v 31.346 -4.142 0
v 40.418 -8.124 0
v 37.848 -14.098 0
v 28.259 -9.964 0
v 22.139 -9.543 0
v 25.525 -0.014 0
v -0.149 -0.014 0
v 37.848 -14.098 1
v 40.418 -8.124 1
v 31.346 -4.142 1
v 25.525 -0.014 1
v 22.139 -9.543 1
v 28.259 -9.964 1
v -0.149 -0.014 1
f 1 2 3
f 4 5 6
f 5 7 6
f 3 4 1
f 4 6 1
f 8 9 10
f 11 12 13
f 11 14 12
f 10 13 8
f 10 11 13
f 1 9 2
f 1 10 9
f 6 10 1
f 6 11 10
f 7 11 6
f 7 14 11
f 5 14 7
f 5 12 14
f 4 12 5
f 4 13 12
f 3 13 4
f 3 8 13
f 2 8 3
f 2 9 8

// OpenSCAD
// file: BOSL2/std.scad
// Minimal BOSL2 compatibility shim for bundled gallery models.
// It implements only the helpers used by the imported OpenSCAD projects.

CENTER = [0, 0, 0];
BOTTOM = [0, 0, -1];
TOP = [0, 0, 1];
LEFT = [-1, 0, 0];
RIGHT = [1, 0, 0];
FRONT = [0, -1, 0];
BACK = [0, 1, 0];

module up(z=0) {
    translate([0, 0, z]) children();
}

module down(z=0) {
    translate([0, 0, -z]) children();
}

module attach(anchor=CENTER) {
    children();
}

module cuboid(size=[1, 1, 1], anchor=CENTER) {
    center = anchor == CENTER;
    translate(center ? [0, 0, 0] : [0, 0, size[2] / 2])
        cube(size, center=true);
    children();
}

module xcyl(h=1, r=1, anchor=CENTER) {
    center = anchor == CENTER;
    translate(center ? [0, 0, 0] : [h / 2, 0, 0])
        rotate([0, 90, 0])
            cylinder(h=h, r=r, center=true);
}
// main file
include <BOSL2/std.scad>
flat_side_length = 24.24;
p2 = [142,128];
p3 = [993,592];
image_length = sqrt(pow(p3.x-p2.x, 2) + pow(p3.y-p2.y,2));
scale_factor=flat_side_length / image_length;
p1 =   [1084+2.00/scale_factor,128+2.44/scale_factor];
A = p1 - p2; // A is p1 relative to origin
angle = -atan(A.y/A.x);
blade_points = [
    p1,
    [1380,412],
    [1726,605],
    [1601,833],
    [1235,632],
    p3,
    p2
    ];
    

//polygon(blade_points);
linear_extrude(1) mirror(FRONT) scale(scale_factor) rotate(angle) translate([-148,-128]) polygon(blade_points);

function rotate_point(p, angle=angle) =
    [(p[0] * cos(angle) - p[1] * sin(angle)), (p[0] * sin(angle) + p[1] * cos(angle))];
    
scaled_points = [for (p = blade_points) rotate_point([(p[0] - p2.x)*scale_factor, (p[1] - p2.y)*scale_factor])];
polygon(scaled_points);

// Now you can use or save the scaled and translated polygon.

   
    
